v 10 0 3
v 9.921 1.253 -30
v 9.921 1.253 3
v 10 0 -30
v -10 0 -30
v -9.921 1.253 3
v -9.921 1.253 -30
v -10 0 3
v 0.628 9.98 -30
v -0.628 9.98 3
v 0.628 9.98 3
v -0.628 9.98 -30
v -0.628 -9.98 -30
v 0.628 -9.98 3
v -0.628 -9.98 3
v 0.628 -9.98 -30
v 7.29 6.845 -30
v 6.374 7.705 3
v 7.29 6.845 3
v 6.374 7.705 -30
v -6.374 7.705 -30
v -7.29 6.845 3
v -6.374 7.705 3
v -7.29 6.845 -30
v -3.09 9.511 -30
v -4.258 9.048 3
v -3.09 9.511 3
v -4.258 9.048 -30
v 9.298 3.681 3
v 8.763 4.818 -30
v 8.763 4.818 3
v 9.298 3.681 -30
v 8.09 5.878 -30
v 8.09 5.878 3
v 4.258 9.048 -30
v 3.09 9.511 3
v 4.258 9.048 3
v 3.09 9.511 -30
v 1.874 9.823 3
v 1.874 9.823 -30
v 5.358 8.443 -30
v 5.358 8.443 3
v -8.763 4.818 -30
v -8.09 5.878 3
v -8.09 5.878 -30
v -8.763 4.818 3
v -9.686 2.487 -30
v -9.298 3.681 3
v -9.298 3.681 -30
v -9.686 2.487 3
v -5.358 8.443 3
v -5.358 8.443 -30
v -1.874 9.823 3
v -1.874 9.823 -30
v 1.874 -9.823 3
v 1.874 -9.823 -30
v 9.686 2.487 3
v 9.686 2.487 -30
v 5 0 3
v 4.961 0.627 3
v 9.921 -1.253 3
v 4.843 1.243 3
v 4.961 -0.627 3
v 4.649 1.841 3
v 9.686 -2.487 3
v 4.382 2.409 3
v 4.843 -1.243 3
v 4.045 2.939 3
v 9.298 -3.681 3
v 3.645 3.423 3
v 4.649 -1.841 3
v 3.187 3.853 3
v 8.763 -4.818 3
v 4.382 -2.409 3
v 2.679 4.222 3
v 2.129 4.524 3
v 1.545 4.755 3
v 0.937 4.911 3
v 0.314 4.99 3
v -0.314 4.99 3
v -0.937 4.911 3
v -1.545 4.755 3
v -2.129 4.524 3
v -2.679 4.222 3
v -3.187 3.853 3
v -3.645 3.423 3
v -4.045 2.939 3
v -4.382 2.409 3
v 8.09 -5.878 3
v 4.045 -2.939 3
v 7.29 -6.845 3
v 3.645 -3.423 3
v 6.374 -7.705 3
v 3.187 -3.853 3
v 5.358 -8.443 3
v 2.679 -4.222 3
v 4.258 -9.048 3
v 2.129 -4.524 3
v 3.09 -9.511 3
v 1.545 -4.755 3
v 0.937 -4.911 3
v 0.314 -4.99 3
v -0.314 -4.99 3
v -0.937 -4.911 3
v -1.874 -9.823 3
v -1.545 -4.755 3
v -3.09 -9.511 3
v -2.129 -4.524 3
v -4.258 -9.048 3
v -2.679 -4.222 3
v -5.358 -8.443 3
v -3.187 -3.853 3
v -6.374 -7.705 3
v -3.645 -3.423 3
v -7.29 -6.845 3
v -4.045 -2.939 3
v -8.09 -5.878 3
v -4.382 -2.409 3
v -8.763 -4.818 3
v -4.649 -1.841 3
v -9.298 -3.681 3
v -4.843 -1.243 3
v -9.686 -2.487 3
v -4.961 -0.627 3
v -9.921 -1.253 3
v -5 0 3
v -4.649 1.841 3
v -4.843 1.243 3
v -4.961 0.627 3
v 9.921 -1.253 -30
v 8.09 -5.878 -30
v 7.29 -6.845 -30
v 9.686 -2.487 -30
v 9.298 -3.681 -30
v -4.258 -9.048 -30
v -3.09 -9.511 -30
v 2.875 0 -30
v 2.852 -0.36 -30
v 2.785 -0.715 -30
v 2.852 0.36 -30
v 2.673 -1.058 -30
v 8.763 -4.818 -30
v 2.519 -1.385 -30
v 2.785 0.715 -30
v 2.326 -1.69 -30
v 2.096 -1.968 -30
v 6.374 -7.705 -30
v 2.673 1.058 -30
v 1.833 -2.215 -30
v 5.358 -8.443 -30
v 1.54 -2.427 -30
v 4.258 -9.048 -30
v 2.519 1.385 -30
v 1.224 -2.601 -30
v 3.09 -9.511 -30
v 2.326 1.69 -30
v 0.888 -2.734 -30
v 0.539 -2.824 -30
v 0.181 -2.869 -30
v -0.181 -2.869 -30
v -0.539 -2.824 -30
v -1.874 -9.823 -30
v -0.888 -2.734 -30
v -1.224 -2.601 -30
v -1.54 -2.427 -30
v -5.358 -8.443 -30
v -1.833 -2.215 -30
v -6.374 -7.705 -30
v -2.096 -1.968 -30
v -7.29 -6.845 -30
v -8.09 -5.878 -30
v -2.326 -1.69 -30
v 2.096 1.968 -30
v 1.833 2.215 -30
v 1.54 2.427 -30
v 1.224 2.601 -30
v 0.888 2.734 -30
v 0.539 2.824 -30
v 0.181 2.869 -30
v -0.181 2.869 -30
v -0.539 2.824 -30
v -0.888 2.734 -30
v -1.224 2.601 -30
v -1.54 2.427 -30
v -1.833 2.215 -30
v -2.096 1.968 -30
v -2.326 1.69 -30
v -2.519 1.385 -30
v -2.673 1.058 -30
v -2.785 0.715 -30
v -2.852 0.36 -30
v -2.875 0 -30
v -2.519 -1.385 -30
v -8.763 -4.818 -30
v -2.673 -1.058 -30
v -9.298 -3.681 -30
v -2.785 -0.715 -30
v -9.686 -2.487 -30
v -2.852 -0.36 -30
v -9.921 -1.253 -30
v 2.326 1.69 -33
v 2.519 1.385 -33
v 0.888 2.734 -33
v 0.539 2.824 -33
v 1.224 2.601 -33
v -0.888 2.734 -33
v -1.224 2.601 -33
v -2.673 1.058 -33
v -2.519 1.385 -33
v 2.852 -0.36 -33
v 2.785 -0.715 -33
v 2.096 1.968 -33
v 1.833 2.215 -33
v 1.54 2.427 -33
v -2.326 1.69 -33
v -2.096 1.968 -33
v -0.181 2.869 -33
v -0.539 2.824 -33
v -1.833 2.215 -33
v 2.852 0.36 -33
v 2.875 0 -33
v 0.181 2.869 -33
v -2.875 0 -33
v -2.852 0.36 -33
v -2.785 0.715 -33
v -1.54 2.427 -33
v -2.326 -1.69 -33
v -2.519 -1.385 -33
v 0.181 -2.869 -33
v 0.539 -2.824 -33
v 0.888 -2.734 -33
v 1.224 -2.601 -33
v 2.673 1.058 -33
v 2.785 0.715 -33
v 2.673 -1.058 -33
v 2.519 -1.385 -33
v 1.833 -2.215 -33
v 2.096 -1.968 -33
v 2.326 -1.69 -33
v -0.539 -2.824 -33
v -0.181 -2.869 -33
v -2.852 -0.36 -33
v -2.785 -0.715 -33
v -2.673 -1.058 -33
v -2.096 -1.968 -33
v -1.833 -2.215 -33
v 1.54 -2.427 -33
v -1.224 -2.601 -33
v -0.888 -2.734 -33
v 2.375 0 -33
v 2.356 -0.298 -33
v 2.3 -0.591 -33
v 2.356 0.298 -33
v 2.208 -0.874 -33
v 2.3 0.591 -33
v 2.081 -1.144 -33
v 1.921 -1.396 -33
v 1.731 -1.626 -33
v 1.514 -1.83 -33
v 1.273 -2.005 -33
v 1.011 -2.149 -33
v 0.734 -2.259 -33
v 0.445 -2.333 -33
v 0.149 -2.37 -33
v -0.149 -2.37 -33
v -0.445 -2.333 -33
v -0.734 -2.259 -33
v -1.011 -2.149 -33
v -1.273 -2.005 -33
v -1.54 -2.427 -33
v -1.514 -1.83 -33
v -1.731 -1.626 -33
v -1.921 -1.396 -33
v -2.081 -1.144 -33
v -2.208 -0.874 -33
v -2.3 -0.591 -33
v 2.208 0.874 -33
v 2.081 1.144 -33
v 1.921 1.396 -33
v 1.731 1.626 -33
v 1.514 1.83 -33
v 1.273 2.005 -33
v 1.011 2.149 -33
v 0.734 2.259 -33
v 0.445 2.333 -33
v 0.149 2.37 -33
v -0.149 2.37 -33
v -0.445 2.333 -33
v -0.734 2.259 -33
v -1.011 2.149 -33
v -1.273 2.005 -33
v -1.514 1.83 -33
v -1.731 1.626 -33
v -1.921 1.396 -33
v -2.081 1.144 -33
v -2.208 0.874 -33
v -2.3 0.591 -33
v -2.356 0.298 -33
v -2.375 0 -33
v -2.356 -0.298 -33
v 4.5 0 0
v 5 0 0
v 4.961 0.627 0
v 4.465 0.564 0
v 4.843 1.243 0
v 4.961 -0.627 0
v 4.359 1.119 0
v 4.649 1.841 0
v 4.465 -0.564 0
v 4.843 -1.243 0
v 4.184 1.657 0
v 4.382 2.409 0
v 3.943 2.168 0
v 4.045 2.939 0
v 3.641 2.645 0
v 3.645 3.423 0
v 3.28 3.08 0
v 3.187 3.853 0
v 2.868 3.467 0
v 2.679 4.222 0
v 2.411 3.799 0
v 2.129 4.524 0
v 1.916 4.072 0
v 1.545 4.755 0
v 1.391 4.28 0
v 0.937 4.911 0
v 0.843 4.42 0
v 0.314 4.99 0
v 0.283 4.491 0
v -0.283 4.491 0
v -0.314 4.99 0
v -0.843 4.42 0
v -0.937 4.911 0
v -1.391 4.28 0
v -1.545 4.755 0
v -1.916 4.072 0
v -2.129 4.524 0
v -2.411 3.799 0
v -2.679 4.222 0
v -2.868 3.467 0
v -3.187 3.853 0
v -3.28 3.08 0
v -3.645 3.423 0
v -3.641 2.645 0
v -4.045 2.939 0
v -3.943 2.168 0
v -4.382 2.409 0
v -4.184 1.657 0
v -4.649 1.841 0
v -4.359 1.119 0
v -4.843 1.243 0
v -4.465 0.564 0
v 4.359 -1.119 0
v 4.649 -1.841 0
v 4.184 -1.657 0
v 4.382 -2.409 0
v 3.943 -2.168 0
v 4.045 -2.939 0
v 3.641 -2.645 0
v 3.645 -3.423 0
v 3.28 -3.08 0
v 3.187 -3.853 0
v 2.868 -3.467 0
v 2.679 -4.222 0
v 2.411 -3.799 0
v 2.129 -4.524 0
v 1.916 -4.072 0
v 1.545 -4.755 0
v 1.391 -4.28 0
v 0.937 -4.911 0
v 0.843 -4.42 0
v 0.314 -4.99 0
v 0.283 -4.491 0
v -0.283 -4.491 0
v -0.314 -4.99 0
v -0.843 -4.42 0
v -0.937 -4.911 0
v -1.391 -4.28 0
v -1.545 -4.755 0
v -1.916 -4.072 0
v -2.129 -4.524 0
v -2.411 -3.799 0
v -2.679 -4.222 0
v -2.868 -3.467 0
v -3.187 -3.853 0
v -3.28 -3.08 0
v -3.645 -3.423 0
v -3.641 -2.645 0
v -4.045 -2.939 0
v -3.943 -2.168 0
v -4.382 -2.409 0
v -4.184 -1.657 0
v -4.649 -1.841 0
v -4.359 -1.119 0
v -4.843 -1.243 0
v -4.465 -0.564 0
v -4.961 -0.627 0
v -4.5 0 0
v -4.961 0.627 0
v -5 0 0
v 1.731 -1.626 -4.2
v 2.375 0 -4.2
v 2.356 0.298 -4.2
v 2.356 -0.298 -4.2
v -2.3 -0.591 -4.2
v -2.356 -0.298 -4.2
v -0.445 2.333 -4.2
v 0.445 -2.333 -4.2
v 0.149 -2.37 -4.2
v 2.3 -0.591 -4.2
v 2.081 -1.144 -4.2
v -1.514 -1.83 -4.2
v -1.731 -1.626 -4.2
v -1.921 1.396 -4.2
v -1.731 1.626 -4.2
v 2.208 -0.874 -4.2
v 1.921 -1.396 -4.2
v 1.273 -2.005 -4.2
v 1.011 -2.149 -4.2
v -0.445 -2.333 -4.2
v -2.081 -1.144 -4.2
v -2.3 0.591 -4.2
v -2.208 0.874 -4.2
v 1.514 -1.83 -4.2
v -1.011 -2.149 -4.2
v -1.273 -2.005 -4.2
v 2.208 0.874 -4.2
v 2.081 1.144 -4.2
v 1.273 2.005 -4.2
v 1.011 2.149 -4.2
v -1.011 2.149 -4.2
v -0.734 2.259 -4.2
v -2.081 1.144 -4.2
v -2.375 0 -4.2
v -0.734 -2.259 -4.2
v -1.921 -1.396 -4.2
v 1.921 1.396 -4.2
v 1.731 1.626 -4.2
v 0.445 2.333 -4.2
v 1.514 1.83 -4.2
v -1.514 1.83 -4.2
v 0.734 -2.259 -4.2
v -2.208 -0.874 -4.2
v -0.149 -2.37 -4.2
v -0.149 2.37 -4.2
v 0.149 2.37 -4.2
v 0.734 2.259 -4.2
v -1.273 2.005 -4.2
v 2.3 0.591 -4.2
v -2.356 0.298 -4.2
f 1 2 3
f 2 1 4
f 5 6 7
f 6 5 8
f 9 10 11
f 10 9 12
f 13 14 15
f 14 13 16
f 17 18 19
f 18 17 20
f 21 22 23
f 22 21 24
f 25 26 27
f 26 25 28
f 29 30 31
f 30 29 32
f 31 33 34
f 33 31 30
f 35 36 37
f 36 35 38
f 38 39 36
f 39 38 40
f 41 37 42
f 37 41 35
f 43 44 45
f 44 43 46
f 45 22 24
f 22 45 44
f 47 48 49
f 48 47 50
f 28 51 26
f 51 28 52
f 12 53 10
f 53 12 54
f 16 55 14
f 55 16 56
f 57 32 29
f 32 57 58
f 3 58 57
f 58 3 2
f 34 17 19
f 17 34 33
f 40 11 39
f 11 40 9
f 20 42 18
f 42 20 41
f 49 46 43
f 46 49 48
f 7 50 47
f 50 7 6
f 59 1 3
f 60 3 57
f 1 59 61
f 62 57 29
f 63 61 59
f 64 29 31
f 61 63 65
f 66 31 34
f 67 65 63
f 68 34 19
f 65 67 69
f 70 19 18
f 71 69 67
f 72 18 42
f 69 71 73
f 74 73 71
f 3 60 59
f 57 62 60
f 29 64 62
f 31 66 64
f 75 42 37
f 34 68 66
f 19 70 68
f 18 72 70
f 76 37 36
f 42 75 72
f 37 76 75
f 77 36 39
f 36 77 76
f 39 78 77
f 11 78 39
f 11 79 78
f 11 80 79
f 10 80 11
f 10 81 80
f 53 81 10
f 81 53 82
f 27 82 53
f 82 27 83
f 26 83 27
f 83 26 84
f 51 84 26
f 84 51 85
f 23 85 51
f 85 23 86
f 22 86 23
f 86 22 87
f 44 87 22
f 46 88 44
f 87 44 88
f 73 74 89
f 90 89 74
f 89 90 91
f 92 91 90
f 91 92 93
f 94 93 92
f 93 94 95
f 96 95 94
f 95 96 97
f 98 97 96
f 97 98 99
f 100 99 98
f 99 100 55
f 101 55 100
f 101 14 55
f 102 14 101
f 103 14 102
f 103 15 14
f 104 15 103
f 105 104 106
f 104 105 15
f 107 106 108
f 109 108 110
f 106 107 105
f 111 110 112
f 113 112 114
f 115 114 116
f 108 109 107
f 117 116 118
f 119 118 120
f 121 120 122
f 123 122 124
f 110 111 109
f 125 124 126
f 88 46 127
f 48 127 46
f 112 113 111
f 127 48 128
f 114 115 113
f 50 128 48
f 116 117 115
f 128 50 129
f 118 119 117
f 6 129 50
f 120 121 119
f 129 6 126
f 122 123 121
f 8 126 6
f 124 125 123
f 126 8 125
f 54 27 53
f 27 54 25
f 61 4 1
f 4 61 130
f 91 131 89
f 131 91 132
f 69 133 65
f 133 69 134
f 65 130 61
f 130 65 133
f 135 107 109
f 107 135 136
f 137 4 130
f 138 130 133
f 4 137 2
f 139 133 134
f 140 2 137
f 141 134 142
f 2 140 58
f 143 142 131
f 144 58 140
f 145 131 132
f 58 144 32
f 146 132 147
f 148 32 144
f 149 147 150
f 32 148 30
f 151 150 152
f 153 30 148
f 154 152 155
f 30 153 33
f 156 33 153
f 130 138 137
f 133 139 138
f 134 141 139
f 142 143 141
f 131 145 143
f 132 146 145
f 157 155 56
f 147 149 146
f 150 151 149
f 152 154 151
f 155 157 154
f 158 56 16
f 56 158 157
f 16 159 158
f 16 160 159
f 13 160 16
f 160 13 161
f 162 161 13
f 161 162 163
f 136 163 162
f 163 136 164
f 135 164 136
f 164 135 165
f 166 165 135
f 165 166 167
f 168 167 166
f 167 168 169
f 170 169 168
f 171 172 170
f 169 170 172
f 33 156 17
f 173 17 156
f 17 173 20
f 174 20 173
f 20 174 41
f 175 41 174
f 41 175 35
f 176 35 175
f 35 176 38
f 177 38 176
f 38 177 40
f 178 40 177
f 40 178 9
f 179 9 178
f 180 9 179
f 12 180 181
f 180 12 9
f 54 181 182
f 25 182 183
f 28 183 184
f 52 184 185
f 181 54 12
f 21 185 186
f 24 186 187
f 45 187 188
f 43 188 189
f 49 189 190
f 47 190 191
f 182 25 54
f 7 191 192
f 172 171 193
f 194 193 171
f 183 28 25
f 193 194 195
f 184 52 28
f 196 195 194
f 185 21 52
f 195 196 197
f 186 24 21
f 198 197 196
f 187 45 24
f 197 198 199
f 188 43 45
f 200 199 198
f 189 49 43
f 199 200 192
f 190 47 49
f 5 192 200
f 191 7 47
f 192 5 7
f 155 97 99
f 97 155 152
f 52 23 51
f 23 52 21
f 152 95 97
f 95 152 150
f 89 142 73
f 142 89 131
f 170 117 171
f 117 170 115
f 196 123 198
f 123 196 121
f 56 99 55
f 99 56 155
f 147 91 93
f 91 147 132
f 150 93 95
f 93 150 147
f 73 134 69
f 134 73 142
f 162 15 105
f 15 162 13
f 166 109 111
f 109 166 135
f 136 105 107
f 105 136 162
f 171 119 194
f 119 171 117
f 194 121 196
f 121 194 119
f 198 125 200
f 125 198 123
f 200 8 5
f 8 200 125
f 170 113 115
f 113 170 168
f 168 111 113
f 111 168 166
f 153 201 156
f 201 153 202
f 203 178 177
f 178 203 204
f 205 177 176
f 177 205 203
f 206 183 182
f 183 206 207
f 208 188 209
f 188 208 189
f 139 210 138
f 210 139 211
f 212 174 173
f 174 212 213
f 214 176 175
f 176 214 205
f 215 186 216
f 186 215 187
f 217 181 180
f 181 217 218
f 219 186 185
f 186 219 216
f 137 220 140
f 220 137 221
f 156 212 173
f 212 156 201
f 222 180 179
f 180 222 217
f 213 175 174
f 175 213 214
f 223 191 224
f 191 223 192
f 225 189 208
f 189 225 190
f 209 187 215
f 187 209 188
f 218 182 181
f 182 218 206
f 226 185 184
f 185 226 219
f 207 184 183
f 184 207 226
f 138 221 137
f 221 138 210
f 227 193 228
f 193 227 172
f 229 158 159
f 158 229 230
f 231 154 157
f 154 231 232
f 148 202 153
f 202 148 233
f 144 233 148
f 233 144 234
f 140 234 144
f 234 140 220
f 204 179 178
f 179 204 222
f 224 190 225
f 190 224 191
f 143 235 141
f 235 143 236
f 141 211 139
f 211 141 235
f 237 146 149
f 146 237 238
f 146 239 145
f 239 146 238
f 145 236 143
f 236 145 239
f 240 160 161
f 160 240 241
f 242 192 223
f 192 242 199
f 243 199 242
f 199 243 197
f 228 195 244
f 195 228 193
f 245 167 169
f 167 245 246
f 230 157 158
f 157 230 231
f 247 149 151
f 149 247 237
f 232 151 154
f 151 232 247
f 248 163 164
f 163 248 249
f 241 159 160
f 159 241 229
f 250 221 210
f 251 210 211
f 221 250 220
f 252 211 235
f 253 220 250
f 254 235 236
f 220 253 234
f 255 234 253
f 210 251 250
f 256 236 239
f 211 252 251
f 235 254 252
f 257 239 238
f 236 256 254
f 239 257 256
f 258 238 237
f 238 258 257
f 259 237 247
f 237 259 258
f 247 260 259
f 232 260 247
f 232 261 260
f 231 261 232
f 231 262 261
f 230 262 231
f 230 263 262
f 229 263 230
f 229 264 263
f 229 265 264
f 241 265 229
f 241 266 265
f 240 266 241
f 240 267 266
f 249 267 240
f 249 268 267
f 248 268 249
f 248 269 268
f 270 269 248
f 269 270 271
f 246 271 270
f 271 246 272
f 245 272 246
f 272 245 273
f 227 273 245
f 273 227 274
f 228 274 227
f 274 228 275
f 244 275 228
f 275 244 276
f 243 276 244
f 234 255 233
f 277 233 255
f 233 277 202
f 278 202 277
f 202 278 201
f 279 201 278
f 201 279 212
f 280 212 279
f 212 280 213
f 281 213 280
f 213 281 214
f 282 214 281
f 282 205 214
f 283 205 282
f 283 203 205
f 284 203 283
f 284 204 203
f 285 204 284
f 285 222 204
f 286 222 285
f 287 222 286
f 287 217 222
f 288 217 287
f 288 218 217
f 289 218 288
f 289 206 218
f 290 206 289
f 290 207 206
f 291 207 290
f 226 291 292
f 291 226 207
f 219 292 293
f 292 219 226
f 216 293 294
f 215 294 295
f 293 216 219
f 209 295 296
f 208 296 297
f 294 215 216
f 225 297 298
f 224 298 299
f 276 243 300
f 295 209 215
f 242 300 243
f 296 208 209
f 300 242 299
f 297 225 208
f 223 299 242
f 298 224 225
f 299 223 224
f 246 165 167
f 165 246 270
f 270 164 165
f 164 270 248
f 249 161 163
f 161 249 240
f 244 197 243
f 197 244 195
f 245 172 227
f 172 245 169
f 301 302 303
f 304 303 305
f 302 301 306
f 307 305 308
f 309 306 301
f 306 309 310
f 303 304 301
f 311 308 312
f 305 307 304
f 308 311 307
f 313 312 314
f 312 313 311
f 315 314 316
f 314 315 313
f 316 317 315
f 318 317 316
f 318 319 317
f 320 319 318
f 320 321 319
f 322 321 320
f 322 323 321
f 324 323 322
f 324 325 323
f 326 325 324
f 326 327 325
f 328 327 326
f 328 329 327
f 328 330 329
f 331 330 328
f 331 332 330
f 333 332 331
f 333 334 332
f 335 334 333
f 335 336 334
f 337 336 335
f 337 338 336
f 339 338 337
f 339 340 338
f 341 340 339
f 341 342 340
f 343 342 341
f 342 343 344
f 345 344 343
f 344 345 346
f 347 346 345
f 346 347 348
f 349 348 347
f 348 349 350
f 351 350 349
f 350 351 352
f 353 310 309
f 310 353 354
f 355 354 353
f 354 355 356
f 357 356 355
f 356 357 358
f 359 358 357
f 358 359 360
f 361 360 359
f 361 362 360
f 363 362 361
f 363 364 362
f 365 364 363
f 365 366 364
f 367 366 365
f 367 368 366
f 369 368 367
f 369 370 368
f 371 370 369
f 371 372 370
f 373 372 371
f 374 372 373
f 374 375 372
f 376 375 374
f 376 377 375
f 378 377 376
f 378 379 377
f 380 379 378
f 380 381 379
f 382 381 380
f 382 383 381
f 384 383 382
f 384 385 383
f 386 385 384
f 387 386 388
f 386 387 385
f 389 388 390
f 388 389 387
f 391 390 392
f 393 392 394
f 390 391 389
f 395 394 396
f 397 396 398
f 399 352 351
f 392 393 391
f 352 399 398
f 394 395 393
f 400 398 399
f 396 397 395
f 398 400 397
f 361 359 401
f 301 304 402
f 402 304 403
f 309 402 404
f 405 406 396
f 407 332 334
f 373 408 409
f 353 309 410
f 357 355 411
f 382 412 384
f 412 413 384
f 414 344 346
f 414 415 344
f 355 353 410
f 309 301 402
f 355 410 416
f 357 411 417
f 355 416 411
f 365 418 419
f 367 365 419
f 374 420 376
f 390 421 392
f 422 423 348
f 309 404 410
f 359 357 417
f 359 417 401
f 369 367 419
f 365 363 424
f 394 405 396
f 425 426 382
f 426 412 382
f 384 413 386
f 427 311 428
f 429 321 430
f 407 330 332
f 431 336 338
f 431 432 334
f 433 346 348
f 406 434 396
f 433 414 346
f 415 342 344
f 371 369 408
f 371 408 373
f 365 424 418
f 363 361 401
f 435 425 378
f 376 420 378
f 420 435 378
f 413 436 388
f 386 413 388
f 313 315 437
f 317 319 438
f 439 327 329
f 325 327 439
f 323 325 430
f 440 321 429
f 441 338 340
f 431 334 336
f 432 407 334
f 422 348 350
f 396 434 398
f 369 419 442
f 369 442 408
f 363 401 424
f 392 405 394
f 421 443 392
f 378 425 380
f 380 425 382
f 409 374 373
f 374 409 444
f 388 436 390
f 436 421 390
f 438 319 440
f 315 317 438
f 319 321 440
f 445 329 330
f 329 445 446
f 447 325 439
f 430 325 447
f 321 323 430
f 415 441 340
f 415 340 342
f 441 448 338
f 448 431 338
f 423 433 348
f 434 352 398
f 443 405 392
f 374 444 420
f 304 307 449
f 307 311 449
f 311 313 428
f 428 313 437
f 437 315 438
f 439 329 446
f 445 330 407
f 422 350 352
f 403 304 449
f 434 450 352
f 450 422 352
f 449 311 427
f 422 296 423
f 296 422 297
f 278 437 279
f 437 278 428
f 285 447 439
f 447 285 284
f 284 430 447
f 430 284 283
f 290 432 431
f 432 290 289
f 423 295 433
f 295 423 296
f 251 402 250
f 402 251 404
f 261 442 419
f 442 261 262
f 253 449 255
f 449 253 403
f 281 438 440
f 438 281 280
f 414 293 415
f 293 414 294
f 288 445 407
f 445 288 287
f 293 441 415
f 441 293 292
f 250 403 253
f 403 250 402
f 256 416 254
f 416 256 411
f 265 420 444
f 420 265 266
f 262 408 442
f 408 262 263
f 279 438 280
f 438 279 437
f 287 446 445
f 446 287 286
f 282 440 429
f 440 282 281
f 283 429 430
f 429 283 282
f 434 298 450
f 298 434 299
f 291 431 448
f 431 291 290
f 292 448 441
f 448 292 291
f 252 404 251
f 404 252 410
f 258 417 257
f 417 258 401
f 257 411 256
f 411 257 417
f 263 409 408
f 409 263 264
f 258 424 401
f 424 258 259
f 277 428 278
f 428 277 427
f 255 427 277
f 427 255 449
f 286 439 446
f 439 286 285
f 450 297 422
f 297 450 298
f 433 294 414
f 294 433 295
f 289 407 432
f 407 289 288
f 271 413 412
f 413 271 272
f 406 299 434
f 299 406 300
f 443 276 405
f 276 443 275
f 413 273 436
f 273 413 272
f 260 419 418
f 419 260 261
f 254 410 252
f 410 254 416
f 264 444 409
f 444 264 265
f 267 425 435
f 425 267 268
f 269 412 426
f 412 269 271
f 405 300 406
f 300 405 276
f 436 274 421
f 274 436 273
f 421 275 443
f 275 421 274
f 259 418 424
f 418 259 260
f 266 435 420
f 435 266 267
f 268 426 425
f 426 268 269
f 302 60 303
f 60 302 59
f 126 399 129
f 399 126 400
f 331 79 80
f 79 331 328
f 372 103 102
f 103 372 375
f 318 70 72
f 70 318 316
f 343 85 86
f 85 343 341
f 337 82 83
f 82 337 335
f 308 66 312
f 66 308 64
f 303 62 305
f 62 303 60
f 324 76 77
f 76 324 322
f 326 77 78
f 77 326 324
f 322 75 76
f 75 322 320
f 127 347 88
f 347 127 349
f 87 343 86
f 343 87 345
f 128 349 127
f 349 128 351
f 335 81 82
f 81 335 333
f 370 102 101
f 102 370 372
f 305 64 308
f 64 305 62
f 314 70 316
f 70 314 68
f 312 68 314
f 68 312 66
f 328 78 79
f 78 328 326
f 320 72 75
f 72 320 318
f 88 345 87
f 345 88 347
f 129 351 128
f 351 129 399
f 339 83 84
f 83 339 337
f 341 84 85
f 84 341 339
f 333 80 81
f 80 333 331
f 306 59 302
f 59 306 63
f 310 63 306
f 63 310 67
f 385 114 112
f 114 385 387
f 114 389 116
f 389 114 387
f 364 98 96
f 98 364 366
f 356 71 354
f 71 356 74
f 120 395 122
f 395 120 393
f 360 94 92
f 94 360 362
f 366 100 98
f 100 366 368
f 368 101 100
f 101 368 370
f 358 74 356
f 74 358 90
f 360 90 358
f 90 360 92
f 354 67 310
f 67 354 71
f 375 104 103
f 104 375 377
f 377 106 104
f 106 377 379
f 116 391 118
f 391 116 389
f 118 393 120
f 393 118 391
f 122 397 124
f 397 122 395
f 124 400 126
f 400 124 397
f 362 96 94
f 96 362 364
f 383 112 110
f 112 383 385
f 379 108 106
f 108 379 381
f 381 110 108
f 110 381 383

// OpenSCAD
$fn = 50;

difference() {
	union() {
		translate(v = [0, 0, -30.0]) {
			cylinder(h = 33, r = 10.0);
		}
		#translate(v = [0, 0, -33.0]) {
			cylinder(h = 33, r = 2.875);
		}
	}
	union() {
		translate(v = [0, 0, 0]) {
			rotate(a = [0, 0, 0]) {
				difference() {
					union() {
						translate(v = [0, 0, -33.0]) {
							cylinder(h = 33, r = 2.25);
						}
						translate(v = [0, 0, -4.2]) {
							cylinder(h = 4.2, r1 = 2.375, r2 = 4.5);
						}
						translate(v = [0, 0, -33.0]) {
							cylinder(h = 33, r = 2.375);
						}
						translate(v = [0, 0, -33.0]) {
							cylinder(h = 33, r = 2.25);
						}
					}
					union();
				}
			}
		}
		#cylinder(h = 3, r = 5.0);
	}
}
